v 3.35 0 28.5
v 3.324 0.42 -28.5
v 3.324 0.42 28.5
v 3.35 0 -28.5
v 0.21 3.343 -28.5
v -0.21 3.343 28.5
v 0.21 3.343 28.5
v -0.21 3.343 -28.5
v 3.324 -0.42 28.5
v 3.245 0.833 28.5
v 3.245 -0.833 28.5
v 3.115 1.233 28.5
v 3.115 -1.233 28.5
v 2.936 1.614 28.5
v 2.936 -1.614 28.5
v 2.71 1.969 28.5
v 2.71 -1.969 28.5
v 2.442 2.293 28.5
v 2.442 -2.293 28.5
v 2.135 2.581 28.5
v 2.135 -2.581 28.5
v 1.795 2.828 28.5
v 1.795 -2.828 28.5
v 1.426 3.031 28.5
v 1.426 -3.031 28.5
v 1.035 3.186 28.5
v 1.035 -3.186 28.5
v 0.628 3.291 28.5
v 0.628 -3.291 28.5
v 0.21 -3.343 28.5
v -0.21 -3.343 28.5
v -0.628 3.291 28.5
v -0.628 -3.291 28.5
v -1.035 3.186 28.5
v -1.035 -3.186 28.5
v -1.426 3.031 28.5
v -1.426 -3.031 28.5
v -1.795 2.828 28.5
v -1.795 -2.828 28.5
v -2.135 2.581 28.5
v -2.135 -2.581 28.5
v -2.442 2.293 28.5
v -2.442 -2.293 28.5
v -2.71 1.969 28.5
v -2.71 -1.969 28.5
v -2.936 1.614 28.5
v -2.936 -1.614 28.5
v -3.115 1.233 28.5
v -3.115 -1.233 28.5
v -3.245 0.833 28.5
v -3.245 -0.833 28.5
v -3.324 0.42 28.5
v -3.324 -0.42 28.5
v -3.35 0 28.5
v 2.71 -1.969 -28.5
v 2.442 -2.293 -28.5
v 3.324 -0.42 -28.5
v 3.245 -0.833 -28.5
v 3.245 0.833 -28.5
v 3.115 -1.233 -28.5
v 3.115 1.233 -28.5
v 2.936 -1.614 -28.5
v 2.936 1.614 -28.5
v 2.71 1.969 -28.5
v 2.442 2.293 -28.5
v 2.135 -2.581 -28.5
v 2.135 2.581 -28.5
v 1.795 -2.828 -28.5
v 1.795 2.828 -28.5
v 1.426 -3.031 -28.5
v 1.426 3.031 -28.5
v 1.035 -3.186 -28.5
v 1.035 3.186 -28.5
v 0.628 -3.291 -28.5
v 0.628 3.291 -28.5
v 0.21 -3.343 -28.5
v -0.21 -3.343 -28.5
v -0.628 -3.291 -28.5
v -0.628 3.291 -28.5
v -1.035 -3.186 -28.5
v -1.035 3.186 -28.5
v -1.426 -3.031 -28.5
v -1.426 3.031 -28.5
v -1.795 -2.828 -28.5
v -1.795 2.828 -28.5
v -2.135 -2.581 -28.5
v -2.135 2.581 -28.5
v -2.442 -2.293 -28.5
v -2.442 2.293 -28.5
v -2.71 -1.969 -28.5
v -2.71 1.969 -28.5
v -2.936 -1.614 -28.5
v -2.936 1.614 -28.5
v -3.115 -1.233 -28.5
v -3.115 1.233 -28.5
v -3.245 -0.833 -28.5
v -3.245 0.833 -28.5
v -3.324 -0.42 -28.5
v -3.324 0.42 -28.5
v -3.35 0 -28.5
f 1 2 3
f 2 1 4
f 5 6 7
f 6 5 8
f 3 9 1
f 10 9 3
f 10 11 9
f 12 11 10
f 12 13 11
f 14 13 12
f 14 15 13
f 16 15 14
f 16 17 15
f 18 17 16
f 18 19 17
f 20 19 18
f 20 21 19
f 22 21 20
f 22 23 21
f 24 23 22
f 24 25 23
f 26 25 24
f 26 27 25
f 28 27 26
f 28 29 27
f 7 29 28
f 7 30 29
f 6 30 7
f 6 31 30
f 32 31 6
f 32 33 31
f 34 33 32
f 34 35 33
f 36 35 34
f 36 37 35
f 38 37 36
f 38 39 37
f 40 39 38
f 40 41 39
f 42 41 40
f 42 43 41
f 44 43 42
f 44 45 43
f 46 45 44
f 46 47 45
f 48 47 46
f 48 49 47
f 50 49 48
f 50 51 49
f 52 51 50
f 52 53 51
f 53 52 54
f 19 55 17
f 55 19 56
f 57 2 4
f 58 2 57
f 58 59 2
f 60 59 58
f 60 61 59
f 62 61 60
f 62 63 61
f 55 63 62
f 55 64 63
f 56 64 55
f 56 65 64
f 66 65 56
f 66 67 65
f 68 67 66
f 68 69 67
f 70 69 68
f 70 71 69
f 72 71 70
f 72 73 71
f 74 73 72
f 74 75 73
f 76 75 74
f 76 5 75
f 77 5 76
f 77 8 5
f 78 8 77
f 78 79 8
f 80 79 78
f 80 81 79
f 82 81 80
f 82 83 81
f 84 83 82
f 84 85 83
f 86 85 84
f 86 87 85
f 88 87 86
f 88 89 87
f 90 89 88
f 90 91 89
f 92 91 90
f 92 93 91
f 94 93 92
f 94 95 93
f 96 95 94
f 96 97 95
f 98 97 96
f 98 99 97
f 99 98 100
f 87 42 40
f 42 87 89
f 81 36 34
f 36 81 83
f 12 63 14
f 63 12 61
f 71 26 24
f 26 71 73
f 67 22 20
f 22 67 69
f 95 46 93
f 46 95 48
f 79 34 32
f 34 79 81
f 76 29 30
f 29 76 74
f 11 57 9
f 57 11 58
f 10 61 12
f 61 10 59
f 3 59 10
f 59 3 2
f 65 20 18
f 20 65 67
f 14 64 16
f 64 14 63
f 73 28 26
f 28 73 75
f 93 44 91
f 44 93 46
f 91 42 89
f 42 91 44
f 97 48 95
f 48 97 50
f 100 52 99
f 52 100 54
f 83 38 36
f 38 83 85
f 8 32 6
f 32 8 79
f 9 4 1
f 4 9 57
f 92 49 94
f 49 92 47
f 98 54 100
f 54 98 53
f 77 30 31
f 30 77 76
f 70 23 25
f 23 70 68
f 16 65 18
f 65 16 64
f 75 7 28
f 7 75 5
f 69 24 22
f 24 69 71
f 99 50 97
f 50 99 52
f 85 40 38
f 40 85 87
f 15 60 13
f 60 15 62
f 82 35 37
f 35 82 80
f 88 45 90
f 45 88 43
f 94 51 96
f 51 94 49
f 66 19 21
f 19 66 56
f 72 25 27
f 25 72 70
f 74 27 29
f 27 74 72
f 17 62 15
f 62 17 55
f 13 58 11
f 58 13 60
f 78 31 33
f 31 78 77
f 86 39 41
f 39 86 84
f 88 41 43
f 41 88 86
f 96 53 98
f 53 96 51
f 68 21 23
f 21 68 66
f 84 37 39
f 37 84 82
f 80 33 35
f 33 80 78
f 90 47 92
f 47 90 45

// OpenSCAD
$fn = 50;


difference() {
	union() {
		translate(v = [0, 0, -28.5000000000]) {
			cylinder(h = 57, r = 3.3500000000);
		}
	}
	union() {
		translate(v = [0, 0, -100.0000000000]) {
			cylinder(h = 200, r = 0);
		}
	}
}
